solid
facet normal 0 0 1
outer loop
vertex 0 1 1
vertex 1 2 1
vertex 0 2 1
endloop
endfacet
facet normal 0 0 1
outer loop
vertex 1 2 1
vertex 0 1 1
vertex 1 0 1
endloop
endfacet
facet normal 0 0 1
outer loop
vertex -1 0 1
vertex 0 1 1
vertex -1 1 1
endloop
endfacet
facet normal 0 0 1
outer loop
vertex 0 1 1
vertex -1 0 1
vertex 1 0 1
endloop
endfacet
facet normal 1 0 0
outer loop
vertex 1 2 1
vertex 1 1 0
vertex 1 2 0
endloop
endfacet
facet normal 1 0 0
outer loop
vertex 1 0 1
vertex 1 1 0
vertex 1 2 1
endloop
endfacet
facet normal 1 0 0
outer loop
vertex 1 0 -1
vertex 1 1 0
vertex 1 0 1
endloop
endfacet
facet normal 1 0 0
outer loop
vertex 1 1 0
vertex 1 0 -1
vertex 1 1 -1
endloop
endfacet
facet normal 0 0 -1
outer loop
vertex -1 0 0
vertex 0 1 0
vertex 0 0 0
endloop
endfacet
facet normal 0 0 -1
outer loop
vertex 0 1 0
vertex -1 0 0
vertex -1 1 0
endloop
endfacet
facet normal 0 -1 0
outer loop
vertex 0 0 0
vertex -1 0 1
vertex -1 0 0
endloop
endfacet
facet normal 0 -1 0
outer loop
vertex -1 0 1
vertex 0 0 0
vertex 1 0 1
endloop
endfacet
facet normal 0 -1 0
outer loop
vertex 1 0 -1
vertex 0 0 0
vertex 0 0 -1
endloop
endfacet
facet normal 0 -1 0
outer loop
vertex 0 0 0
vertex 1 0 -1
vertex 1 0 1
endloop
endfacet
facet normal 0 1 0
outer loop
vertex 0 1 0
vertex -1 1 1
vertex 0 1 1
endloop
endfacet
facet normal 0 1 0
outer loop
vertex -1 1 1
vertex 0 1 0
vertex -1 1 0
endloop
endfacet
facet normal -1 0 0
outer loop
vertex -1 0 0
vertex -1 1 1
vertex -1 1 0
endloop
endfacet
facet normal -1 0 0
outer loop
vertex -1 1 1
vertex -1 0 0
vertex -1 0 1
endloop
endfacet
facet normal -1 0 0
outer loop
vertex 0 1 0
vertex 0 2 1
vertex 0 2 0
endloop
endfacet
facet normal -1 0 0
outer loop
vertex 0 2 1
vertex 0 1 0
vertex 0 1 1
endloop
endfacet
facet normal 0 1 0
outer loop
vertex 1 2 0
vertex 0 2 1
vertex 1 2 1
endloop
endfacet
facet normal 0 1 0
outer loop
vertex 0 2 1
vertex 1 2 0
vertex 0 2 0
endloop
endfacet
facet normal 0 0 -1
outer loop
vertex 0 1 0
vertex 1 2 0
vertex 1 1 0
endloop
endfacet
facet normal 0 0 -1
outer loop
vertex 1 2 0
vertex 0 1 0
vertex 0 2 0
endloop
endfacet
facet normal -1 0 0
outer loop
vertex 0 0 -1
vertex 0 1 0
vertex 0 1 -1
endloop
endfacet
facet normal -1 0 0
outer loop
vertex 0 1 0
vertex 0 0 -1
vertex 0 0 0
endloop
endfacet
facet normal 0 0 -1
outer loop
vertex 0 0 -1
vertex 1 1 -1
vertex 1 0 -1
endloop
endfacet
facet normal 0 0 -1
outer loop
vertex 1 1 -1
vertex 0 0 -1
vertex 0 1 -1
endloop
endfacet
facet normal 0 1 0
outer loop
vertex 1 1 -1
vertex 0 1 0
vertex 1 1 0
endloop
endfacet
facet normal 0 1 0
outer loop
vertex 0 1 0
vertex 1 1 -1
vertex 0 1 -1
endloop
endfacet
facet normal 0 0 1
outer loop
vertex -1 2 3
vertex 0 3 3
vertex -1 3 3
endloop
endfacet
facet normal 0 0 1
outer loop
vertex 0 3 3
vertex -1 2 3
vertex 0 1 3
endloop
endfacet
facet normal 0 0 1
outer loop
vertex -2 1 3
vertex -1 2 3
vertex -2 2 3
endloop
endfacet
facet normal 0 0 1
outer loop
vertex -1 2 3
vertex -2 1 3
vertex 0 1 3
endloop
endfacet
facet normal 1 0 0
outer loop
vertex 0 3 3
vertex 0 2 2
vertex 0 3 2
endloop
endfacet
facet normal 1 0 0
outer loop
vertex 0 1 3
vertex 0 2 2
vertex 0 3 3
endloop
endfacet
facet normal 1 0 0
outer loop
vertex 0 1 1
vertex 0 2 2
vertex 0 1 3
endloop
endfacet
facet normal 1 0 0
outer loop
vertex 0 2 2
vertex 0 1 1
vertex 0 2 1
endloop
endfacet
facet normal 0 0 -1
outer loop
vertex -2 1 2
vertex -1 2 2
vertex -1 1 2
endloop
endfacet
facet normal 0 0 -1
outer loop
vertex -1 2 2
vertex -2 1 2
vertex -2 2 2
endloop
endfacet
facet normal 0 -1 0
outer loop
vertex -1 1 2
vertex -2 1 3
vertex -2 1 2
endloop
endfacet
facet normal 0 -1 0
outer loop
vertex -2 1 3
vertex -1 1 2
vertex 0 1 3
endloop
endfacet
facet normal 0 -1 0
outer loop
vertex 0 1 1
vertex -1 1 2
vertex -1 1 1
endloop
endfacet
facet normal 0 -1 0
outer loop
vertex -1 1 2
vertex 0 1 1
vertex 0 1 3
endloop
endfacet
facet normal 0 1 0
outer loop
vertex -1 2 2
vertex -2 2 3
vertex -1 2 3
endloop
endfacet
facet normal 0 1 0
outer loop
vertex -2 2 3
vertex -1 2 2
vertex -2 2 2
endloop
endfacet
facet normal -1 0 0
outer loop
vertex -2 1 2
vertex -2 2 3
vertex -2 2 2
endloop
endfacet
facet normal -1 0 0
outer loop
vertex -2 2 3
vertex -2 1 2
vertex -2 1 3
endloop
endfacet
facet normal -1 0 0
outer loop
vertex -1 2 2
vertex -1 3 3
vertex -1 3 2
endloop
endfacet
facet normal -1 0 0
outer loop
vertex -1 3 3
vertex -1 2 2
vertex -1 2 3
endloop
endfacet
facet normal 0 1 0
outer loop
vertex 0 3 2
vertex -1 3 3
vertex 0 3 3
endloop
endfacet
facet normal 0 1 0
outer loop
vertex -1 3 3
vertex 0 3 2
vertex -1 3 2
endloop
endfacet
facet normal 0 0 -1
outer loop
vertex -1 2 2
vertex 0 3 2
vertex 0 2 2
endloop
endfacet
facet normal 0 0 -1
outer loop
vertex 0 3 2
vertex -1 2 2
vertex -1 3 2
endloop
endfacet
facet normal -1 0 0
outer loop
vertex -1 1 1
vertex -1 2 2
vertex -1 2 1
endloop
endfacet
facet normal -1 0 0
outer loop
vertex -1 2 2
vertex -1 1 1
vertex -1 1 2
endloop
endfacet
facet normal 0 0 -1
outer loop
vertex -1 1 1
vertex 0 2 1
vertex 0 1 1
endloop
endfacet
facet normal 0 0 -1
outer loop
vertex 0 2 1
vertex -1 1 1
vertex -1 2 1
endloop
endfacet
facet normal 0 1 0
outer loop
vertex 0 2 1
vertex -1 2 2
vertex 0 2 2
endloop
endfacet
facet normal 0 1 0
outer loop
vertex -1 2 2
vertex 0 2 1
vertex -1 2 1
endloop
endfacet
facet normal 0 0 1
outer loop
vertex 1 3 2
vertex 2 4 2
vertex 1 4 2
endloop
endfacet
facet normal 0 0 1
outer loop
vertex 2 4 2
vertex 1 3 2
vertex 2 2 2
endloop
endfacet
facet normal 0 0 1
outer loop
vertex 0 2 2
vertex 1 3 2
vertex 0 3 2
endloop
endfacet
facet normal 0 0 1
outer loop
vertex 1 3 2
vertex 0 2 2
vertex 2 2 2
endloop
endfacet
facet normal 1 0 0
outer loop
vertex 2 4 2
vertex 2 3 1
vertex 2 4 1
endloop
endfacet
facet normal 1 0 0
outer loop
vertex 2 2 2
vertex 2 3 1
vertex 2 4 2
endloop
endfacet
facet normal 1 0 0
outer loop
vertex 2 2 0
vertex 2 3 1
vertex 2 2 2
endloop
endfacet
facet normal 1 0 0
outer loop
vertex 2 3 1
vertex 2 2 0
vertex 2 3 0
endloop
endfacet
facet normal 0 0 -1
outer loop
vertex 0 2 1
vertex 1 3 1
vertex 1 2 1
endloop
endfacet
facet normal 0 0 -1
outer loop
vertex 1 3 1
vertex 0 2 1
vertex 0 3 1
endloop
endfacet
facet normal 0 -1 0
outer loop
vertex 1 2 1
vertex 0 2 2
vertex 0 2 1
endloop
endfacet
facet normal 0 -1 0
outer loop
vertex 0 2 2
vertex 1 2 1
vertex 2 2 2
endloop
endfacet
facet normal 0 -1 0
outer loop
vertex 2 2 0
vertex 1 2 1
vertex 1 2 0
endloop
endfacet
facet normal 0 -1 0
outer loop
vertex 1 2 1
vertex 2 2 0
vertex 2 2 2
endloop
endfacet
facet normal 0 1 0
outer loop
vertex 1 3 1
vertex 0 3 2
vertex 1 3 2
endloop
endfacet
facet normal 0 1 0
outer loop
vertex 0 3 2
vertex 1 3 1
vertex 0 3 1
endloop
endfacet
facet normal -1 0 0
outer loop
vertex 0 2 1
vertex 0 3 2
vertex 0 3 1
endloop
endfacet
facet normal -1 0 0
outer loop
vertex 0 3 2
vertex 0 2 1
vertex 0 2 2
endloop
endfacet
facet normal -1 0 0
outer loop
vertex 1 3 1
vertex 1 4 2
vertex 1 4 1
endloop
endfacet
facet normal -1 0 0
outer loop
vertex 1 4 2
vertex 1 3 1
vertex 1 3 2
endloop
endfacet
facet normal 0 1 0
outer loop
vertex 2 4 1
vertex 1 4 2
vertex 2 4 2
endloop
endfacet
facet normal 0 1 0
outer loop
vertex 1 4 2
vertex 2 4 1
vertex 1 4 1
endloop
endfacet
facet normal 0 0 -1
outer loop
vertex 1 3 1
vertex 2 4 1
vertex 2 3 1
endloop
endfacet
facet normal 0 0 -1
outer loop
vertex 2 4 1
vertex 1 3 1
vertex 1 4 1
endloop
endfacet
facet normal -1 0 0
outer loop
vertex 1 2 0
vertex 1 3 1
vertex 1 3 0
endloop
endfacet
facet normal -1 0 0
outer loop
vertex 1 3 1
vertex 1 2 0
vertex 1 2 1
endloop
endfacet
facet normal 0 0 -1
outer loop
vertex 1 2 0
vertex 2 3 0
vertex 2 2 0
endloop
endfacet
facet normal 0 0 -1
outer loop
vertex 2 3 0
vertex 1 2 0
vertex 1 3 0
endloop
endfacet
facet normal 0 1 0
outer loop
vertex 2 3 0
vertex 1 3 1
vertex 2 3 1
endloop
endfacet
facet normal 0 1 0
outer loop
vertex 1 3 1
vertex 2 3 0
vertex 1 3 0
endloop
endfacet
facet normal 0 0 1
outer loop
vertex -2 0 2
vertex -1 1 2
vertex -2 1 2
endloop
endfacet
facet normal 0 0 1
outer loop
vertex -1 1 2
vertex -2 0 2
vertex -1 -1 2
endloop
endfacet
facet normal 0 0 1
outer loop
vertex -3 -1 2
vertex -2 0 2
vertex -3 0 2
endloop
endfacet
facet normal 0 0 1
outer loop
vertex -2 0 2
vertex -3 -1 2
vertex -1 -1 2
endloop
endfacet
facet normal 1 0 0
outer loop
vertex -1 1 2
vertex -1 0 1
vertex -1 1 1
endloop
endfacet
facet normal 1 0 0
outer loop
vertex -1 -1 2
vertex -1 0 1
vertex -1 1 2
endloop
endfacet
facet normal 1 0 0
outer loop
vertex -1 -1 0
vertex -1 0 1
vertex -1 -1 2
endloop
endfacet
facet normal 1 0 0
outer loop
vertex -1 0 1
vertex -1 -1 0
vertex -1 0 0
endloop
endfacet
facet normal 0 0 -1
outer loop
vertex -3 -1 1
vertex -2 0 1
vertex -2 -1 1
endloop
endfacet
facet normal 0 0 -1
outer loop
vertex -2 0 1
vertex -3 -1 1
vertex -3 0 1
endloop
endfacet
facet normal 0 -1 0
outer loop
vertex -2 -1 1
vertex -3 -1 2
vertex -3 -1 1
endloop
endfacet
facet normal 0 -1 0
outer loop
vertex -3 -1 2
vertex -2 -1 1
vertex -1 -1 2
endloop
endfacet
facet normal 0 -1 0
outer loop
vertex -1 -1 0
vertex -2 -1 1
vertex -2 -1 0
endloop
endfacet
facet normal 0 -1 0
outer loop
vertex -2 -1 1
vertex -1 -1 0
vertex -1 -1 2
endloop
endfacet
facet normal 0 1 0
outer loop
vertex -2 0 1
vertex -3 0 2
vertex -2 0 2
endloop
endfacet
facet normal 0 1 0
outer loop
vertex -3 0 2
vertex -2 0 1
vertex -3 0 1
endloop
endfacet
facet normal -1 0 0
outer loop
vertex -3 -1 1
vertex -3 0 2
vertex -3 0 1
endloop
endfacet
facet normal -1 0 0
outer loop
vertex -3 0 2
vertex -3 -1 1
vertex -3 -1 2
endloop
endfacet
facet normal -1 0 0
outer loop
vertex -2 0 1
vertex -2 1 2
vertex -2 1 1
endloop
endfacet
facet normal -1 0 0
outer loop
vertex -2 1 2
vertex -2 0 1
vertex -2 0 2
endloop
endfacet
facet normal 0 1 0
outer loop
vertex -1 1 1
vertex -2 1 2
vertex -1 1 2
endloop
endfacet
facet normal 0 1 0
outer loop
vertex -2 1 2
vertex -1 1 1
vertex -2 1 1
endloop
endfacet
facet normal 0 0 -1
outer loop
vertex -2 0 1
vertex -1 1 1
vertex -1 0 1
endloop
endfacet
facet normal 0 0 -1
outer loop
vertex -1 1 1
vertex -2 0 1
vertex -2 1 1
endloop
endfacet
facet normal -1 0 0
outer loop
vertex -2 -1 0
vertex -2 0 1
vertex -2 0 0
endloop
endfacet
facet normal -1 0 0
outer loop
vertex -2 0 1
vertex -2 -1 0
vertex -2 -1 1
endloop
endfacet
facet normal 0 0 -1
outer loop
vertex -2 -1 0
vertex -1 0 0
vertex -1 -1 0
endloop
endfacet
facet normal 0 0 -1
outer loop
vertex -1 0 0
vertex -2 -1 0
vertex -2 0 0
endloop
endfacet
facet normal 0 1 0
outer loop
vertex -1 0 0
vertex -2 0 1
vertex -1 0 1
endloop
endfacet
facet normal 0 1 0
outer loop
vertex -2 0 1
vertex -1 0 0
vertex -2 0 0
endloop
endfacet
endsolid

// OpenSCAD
module module_cube_4(translation= [0,0,0]){
    translate(translation)union() {
cube(1,1,1);    
translate([-1,0,0])cube(size = [1,1,1]);
translate([0,1,0])cube(size = [1,1,1]);
translate([0,0,-1])cube(size = [1,1,1]);
    }
};
module module_cube_7(translation= [0,0,0]){
    translate(translation)union() {
cube(1,1,1);    
translate([-2,0,0])cube(size = [2,1,1]);
translate([0,1,0])cube(size = [1,2,1]);
translate([0,0,-2])cube(size = [1,1,2]);
    }
};

module_cube_4([0,0,0]);
module_cube_4([-1,1,2]);
module_cube_4([1,2,1]);
module_cube_4([-2,-1,1]);
